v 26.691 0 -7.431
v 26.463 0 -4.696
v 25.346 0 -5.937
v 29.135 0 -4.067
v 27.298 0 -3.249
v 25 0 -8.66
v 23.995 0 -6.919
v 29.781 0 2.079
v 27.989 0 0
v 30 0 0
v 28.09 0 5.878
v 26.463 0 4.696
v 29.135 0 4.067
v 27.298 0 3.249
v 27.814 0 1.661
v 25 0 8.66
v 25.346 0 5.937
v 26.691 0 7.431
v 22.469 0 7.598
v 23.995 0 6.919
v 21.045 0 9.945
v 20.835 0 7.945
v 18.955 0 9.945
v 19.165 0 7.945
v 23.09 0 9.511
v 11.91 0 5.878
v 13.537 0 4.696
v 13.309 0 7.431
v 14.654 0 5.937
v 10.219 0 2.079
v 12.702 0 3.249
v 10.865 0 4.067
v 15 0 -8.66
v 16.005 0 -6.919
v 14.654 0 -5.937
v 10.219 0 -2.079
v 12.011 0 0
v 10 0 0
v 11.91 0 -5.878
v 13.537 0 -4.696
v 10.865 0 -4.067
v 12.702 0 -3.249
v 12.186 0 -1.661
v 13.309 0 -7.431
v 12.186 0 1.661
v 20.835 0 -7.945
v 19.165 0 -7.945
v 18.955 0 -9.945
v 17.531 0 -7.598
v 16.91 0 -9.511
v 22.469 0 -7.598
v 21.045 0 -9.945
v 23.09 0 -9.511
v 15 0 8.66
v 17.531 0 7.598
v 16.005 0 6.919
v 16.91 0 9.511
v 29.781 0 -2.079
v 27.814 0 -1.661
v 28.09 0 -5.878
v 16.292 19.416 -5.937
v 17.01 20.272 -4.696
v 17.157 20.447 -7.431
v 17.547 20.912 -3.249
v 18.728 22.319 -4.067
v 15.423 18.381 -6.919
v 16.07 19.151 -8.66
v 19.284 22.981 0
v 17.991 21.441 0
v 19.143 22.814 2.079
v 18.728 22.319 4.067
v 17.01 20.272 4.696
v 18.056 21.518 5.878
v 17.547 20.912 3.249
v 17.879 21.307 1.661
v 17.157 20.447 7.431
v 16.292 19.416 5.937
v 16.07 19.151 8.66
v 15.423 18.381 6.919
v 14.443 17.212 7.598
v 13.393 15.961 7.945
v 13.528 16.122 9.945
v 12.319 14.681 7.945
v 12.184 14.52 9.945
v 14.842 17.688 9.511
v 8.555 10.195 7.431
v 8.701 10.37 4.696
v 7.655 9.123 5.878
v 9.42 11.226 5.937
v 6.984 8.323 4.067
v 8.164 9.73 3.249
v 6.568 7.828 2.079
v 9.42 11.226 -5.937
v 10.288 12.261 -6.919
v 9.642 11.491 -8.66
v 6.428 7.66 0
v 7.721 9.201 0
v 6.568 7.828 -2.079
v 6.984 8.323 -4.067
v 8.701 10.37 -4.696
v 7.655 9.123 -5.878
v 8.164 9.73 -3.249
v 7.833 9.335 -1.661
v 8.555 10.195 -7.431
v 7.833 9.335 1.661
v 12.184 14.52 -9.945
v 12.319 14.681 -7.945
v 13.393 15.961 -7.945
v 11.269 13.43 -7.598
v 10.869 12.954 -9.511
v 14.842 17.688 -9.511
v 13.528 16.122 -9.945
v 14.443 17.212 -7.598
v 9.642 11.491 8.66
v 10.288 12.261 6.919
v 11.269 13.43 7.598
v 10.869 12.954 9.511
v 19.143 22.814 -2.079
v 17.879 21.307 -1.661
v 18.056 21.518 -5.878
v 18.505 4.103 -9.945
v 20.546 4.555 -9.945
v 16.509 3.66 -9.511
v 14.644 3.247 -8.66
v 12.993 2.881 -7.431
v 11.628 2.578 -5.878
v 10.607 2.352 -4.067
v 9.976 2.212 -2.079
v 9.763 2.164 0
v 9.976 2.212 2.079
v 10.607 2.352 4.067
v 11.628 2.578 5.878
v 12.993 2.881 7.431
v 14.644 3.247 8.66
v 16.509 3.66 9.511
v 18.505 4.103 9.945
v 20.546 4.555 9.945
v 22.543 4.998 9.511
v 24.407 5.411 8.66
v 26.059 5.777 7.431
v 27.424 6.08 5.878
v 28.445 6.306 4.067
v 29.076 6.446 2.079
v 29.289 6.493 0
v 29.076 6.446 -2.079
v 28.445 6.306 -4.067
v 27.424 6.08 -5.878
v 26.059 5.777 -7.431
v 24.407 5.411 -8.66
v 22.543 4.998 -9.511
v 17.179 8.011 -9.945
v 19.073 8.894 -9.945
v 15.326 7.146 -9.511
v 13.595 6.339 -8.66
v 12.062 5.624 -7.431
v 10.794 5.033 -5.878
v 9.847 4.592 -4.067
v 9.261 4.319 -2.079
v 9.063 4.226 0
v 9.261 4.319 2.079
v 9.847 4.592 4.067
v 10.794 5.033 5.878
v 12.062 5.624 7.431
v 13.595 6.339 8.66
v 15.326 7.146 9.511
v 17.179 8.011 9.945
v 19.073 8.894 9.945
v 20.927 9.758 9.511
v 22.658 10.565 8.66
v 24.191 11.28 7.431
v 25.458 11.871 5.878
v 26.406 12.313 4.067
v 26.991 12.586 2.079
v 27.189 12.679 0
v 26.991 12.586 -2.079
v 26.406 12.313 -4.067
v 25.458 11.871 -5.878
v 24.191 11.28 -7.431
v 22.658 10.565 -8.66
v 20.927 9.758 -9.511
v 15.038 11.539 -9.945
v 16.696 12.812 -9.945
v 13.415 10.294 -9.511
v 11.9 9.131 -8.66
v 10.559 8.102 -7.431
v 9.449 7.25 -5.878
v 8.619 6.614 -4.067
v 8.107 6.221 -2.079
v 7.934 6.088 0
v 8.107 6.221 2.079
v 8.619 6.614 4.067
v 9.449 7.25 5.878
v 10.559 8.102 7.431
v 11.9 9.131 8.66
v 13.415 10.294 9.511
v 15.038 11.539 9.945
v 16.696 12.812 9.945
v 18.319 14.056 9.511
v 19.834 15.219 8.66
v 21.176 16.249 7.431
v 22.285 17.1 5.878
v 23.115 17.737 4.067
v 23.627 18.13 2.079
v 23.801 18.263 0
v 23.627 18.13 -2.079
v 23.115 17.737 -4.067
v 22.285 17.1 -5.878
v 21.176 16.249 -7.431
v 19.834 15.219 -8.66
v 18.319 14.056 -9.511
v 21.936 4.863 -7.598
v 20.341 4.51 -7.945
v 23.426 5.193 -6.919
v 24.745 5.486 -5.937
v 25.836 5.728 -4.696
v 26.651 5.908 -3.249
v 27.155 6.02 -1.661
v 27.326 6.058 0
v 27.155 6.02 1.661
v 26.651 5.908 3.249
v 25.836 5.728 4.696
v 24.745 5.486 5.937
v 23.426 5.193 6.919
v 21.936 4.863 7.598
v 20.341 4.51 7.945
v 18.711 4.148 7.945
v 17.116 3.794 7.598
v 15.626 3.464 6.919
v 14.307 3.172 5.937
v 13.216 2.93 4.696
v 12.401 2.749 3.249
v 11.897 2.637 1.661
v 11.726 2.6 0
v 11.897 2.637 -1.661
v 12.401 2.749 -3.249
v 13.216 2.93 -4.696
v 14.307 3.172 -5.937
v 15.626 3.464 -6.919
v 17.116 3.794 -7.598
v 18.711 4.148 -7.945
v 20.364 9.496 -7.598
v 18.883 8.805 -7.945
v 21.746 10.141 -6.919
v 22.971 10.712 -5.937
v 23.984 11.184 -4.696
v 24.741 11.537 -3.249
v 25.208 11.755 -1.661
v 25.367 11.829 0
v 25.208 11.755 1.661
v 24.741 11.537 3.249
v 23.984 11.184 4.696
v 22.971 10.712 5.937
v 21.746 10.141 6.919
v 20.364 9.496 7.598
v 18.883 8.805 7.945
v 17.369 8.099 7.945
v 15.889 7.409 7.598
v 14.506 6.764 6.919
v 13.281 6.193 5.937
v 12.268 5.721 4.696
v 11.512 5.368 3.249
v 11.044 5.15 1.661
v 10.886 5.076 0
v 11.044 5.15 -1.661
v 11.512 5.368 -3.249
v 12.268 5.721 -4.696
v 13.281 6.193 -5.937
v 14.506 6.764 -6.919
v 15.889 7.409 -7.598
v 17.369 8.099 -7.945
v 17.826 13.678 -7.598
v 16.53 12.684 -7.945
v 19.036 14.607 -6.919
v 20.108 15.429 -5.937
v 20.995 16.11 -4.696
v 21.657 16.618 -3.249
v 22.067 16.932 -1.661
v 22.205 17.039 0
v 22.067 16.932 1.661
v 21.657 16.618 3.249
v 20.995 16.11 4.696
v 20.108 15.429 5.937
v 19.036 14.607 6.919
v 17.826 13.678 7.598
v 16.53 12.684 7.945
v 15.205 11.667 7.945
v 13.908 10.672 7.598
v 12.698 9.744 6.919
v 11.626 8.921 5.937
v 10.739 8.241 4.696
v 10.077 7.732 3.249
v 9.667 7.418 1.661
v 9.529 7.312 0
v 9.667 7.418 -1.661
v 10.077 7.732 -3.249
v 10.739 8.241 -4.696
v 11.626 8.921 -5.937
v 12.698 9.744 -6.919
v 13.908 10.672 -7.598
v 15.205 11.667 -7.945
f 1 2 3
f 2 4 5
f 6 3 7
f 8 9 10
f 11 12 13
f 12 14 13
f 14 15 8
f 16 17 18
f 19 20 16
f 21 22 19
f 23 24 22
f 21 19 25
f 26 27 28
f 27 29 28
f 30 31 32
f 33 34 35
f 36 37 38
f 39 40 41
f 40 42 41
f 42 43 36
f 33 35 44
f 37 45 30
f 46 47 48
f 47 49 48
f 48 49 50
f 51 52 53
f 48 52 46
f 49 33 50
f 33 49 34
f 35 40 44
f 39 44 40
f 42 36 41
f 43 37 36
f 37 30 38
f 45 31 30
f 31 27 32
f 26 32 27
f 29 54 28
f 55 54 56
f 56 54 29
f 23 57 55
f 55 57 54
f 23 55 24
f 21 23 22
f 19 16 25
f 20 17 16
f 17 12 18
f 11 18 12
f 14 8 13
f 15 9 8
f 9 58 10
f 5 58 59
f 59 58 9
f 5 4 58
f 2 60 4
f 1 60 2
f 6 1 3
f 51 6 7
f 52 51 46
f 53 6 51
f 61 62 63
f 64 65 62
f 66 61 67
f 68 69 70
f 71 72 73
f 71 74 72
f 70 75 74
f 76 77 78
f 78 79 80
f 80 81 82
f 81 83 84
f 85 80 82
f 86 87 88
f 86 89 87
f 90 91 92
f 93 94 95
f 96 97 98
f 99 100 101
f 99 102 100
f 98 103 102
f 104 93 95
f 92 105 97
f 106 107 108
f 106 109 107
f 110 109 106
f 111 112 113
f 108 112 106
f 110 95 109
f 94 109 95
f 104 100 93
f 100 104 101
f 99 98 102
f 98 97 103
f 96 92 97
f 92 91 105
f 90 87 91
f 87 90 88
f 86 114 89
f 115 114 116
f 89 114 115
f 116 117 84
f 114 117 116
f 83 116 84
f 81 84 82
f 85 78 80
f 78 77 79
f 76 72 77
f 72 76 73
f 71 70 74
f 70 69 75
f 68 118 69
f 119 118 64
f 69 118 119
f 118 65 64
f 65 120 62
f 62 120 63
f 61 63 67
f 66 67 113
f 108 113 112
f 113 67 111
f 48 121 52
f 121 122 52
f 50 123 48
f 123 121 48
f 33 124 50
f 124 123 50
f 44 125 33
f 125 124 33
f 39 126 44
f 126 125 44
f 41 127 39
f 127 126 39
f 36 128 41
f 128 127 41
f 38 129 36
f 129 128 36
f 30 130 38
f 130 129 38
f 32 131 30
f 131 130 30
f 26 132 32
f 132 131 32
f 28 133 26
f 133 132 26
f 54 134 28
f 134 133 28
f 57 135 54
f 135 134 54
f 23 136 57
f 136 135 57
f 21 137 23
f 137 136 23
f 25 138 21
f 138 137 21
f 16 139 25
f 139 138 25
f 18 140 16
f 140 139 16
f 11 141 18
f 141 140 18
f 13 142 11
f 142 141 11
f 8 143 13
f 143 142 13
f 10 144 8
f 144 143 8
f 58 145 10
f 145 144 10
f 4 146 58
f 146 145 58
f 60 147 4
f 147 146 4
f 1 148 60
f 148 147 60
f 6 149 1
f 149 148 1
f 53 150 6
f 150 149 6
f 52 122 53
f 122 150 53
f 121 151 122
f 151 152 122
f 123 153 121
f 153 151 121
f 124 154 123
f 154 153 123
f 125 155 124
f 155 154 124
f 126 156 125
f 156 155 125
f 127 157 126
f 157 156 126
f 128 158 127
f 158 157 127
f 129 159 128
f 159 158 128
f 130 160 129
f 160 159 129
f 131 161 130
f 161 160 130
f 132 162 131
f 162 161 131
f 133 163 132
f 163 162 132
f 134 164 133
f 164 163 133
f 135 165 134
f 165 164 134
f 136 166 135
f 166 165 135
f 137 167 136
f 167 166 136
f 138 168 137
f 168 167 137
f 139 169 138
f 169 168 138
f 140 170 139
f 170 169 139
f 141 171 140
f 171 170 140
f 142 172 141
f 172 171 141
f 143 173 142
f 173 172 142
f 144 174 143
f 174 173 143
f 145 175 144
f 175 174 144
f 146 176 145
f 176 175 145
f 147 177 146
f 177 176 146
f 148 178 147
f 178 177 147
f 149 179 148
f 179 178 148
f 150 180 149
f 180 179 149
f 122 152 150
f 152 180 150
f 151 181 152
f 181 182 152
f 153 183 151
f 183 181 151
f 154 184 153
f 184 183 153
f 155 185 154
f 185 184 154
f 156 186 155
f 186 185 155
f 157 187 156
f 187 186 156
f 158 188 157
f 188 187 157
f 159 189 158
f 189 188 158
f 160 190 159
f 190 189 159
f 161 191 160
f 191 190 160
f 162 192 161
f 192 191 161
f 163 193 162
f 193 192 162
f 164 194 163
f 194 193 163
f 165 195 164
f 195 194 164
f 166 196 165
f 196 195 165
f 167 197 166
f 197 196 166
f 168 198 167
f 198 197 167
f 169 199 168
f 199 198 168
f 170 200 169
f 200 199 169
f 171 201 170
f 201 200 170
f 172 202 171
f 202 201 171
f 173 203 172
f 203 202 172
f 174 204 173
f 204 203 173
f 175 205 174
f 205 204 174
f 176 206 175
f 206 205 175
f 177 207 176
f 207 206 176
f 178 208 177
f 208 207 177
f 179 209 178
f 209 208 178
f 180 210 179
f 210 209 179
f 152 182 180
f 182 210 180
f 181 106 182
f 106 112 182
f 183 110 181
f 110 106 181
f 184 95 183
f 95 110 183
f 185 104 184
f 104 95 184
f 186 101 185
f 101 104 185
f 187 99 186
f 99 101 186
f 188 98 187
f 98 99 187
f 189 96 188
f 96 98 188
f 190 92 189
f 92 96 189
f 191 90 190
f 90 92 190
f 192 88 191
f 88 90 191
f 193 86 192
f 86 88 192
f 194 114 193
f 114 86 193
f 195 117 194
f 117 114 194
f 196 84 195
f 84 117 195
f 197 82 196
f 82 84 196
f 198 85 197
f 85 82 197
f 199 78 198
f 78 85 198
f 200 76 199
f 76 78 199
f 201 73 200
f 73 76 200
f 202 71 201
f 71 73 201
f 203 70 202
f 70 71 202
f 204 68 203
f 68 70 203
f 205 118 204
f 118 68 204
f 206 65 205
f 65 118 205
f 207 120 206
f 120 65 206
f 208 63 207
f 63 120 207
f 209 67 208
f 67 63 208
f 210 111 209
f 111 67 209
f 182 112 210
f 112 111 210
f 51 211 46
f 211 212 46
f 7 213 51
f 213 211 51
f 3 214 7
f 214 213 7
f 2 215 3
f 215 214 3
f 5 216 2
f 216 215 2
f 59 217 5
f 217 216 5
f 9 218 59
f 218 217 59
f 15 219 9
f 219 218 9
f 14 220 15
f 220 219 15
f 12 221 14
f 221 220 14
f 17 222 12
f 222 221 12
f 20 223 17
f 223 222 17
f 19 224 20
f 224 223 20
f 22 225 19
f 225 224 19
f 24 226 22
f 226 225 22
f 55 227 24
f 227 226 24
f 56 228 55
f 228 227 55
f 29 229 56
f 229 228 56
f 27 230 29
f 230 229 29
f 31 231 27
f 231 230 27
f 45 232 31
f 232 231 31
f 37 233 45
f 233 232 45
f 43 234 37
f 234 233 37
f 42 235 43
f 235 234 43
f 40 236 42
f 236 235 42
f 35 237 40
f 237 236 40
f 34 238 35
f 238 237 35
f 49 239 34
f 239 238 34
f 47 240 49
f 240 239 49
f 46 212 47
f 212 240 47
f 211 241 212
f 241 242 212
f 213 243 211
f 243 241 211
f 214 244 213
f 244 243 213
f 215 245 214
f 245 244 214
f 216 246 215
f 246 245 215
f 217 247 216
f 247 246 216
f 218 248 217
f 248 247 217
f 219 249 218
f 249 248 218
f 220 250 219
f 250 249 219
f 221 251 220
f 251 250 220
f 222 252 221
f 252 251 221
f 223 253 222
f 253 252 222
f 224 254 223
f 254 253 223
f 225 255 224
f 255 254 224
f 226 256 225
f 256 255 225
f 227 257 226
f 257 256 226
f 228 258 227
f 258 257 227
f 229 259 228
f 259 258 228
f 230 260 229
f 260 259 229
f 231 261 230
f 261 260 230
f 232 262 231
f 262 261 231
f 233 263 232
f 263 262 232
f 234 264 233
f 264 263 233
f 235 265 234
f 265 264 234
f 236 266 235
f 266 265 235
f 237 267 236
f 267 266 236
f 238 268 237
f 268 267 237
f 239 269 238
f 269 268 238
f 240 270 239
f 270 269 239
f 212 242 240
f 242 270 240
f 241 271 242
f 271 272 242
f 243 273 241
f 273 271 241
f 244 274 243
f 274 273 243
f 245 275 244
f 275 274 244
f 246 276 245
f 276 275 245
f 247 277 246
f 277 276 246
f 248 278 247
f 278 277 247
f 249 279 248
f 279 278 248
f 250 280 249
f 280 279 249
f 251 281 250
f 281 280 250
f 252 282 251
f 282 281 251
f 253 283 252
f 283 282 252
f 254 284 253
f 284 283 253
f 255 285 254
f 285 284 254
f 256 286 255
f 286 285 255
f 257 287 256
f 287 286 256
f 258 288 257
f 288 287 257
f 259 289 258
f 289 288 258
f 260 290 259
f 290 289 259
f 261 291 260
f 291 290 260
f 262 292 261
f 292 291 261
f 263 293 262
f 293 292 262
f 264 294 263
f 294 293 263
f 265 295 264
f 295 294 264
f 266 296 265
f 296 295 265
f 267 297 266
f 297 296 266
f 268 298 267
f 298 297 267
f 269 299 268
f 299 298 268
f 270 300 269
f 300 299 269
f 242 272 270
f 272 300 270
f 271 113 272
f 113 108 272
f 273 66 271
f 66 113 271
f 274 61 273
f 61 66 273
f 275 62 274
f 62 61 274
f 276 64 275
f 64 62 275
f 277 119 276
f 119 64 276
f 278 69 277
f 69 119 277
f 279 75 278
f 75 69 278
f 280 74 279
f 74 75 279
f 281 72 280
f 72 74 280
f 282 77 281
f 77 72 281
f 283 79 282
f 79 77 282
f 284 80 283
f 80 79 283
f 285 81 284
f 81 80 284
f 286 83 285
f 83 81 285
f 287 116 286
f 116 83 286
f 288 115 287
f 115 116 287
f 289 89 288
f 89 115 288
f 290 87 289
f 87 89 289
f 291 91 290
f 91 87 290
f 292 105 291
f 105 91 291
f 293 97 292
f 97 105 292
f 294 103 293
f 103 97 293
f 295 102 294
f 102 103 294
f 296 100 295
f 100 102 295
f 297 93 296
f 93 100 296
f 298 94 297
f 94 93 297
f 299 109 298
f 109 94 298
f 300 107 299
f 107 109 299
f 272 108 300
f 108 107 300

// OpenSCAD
// pipe created through 2D circle
rotate_extrude(angle=50)
translate([20,0])
difference() {
    circle(10);
    offset(-2){
        circle(10);
    }
}
